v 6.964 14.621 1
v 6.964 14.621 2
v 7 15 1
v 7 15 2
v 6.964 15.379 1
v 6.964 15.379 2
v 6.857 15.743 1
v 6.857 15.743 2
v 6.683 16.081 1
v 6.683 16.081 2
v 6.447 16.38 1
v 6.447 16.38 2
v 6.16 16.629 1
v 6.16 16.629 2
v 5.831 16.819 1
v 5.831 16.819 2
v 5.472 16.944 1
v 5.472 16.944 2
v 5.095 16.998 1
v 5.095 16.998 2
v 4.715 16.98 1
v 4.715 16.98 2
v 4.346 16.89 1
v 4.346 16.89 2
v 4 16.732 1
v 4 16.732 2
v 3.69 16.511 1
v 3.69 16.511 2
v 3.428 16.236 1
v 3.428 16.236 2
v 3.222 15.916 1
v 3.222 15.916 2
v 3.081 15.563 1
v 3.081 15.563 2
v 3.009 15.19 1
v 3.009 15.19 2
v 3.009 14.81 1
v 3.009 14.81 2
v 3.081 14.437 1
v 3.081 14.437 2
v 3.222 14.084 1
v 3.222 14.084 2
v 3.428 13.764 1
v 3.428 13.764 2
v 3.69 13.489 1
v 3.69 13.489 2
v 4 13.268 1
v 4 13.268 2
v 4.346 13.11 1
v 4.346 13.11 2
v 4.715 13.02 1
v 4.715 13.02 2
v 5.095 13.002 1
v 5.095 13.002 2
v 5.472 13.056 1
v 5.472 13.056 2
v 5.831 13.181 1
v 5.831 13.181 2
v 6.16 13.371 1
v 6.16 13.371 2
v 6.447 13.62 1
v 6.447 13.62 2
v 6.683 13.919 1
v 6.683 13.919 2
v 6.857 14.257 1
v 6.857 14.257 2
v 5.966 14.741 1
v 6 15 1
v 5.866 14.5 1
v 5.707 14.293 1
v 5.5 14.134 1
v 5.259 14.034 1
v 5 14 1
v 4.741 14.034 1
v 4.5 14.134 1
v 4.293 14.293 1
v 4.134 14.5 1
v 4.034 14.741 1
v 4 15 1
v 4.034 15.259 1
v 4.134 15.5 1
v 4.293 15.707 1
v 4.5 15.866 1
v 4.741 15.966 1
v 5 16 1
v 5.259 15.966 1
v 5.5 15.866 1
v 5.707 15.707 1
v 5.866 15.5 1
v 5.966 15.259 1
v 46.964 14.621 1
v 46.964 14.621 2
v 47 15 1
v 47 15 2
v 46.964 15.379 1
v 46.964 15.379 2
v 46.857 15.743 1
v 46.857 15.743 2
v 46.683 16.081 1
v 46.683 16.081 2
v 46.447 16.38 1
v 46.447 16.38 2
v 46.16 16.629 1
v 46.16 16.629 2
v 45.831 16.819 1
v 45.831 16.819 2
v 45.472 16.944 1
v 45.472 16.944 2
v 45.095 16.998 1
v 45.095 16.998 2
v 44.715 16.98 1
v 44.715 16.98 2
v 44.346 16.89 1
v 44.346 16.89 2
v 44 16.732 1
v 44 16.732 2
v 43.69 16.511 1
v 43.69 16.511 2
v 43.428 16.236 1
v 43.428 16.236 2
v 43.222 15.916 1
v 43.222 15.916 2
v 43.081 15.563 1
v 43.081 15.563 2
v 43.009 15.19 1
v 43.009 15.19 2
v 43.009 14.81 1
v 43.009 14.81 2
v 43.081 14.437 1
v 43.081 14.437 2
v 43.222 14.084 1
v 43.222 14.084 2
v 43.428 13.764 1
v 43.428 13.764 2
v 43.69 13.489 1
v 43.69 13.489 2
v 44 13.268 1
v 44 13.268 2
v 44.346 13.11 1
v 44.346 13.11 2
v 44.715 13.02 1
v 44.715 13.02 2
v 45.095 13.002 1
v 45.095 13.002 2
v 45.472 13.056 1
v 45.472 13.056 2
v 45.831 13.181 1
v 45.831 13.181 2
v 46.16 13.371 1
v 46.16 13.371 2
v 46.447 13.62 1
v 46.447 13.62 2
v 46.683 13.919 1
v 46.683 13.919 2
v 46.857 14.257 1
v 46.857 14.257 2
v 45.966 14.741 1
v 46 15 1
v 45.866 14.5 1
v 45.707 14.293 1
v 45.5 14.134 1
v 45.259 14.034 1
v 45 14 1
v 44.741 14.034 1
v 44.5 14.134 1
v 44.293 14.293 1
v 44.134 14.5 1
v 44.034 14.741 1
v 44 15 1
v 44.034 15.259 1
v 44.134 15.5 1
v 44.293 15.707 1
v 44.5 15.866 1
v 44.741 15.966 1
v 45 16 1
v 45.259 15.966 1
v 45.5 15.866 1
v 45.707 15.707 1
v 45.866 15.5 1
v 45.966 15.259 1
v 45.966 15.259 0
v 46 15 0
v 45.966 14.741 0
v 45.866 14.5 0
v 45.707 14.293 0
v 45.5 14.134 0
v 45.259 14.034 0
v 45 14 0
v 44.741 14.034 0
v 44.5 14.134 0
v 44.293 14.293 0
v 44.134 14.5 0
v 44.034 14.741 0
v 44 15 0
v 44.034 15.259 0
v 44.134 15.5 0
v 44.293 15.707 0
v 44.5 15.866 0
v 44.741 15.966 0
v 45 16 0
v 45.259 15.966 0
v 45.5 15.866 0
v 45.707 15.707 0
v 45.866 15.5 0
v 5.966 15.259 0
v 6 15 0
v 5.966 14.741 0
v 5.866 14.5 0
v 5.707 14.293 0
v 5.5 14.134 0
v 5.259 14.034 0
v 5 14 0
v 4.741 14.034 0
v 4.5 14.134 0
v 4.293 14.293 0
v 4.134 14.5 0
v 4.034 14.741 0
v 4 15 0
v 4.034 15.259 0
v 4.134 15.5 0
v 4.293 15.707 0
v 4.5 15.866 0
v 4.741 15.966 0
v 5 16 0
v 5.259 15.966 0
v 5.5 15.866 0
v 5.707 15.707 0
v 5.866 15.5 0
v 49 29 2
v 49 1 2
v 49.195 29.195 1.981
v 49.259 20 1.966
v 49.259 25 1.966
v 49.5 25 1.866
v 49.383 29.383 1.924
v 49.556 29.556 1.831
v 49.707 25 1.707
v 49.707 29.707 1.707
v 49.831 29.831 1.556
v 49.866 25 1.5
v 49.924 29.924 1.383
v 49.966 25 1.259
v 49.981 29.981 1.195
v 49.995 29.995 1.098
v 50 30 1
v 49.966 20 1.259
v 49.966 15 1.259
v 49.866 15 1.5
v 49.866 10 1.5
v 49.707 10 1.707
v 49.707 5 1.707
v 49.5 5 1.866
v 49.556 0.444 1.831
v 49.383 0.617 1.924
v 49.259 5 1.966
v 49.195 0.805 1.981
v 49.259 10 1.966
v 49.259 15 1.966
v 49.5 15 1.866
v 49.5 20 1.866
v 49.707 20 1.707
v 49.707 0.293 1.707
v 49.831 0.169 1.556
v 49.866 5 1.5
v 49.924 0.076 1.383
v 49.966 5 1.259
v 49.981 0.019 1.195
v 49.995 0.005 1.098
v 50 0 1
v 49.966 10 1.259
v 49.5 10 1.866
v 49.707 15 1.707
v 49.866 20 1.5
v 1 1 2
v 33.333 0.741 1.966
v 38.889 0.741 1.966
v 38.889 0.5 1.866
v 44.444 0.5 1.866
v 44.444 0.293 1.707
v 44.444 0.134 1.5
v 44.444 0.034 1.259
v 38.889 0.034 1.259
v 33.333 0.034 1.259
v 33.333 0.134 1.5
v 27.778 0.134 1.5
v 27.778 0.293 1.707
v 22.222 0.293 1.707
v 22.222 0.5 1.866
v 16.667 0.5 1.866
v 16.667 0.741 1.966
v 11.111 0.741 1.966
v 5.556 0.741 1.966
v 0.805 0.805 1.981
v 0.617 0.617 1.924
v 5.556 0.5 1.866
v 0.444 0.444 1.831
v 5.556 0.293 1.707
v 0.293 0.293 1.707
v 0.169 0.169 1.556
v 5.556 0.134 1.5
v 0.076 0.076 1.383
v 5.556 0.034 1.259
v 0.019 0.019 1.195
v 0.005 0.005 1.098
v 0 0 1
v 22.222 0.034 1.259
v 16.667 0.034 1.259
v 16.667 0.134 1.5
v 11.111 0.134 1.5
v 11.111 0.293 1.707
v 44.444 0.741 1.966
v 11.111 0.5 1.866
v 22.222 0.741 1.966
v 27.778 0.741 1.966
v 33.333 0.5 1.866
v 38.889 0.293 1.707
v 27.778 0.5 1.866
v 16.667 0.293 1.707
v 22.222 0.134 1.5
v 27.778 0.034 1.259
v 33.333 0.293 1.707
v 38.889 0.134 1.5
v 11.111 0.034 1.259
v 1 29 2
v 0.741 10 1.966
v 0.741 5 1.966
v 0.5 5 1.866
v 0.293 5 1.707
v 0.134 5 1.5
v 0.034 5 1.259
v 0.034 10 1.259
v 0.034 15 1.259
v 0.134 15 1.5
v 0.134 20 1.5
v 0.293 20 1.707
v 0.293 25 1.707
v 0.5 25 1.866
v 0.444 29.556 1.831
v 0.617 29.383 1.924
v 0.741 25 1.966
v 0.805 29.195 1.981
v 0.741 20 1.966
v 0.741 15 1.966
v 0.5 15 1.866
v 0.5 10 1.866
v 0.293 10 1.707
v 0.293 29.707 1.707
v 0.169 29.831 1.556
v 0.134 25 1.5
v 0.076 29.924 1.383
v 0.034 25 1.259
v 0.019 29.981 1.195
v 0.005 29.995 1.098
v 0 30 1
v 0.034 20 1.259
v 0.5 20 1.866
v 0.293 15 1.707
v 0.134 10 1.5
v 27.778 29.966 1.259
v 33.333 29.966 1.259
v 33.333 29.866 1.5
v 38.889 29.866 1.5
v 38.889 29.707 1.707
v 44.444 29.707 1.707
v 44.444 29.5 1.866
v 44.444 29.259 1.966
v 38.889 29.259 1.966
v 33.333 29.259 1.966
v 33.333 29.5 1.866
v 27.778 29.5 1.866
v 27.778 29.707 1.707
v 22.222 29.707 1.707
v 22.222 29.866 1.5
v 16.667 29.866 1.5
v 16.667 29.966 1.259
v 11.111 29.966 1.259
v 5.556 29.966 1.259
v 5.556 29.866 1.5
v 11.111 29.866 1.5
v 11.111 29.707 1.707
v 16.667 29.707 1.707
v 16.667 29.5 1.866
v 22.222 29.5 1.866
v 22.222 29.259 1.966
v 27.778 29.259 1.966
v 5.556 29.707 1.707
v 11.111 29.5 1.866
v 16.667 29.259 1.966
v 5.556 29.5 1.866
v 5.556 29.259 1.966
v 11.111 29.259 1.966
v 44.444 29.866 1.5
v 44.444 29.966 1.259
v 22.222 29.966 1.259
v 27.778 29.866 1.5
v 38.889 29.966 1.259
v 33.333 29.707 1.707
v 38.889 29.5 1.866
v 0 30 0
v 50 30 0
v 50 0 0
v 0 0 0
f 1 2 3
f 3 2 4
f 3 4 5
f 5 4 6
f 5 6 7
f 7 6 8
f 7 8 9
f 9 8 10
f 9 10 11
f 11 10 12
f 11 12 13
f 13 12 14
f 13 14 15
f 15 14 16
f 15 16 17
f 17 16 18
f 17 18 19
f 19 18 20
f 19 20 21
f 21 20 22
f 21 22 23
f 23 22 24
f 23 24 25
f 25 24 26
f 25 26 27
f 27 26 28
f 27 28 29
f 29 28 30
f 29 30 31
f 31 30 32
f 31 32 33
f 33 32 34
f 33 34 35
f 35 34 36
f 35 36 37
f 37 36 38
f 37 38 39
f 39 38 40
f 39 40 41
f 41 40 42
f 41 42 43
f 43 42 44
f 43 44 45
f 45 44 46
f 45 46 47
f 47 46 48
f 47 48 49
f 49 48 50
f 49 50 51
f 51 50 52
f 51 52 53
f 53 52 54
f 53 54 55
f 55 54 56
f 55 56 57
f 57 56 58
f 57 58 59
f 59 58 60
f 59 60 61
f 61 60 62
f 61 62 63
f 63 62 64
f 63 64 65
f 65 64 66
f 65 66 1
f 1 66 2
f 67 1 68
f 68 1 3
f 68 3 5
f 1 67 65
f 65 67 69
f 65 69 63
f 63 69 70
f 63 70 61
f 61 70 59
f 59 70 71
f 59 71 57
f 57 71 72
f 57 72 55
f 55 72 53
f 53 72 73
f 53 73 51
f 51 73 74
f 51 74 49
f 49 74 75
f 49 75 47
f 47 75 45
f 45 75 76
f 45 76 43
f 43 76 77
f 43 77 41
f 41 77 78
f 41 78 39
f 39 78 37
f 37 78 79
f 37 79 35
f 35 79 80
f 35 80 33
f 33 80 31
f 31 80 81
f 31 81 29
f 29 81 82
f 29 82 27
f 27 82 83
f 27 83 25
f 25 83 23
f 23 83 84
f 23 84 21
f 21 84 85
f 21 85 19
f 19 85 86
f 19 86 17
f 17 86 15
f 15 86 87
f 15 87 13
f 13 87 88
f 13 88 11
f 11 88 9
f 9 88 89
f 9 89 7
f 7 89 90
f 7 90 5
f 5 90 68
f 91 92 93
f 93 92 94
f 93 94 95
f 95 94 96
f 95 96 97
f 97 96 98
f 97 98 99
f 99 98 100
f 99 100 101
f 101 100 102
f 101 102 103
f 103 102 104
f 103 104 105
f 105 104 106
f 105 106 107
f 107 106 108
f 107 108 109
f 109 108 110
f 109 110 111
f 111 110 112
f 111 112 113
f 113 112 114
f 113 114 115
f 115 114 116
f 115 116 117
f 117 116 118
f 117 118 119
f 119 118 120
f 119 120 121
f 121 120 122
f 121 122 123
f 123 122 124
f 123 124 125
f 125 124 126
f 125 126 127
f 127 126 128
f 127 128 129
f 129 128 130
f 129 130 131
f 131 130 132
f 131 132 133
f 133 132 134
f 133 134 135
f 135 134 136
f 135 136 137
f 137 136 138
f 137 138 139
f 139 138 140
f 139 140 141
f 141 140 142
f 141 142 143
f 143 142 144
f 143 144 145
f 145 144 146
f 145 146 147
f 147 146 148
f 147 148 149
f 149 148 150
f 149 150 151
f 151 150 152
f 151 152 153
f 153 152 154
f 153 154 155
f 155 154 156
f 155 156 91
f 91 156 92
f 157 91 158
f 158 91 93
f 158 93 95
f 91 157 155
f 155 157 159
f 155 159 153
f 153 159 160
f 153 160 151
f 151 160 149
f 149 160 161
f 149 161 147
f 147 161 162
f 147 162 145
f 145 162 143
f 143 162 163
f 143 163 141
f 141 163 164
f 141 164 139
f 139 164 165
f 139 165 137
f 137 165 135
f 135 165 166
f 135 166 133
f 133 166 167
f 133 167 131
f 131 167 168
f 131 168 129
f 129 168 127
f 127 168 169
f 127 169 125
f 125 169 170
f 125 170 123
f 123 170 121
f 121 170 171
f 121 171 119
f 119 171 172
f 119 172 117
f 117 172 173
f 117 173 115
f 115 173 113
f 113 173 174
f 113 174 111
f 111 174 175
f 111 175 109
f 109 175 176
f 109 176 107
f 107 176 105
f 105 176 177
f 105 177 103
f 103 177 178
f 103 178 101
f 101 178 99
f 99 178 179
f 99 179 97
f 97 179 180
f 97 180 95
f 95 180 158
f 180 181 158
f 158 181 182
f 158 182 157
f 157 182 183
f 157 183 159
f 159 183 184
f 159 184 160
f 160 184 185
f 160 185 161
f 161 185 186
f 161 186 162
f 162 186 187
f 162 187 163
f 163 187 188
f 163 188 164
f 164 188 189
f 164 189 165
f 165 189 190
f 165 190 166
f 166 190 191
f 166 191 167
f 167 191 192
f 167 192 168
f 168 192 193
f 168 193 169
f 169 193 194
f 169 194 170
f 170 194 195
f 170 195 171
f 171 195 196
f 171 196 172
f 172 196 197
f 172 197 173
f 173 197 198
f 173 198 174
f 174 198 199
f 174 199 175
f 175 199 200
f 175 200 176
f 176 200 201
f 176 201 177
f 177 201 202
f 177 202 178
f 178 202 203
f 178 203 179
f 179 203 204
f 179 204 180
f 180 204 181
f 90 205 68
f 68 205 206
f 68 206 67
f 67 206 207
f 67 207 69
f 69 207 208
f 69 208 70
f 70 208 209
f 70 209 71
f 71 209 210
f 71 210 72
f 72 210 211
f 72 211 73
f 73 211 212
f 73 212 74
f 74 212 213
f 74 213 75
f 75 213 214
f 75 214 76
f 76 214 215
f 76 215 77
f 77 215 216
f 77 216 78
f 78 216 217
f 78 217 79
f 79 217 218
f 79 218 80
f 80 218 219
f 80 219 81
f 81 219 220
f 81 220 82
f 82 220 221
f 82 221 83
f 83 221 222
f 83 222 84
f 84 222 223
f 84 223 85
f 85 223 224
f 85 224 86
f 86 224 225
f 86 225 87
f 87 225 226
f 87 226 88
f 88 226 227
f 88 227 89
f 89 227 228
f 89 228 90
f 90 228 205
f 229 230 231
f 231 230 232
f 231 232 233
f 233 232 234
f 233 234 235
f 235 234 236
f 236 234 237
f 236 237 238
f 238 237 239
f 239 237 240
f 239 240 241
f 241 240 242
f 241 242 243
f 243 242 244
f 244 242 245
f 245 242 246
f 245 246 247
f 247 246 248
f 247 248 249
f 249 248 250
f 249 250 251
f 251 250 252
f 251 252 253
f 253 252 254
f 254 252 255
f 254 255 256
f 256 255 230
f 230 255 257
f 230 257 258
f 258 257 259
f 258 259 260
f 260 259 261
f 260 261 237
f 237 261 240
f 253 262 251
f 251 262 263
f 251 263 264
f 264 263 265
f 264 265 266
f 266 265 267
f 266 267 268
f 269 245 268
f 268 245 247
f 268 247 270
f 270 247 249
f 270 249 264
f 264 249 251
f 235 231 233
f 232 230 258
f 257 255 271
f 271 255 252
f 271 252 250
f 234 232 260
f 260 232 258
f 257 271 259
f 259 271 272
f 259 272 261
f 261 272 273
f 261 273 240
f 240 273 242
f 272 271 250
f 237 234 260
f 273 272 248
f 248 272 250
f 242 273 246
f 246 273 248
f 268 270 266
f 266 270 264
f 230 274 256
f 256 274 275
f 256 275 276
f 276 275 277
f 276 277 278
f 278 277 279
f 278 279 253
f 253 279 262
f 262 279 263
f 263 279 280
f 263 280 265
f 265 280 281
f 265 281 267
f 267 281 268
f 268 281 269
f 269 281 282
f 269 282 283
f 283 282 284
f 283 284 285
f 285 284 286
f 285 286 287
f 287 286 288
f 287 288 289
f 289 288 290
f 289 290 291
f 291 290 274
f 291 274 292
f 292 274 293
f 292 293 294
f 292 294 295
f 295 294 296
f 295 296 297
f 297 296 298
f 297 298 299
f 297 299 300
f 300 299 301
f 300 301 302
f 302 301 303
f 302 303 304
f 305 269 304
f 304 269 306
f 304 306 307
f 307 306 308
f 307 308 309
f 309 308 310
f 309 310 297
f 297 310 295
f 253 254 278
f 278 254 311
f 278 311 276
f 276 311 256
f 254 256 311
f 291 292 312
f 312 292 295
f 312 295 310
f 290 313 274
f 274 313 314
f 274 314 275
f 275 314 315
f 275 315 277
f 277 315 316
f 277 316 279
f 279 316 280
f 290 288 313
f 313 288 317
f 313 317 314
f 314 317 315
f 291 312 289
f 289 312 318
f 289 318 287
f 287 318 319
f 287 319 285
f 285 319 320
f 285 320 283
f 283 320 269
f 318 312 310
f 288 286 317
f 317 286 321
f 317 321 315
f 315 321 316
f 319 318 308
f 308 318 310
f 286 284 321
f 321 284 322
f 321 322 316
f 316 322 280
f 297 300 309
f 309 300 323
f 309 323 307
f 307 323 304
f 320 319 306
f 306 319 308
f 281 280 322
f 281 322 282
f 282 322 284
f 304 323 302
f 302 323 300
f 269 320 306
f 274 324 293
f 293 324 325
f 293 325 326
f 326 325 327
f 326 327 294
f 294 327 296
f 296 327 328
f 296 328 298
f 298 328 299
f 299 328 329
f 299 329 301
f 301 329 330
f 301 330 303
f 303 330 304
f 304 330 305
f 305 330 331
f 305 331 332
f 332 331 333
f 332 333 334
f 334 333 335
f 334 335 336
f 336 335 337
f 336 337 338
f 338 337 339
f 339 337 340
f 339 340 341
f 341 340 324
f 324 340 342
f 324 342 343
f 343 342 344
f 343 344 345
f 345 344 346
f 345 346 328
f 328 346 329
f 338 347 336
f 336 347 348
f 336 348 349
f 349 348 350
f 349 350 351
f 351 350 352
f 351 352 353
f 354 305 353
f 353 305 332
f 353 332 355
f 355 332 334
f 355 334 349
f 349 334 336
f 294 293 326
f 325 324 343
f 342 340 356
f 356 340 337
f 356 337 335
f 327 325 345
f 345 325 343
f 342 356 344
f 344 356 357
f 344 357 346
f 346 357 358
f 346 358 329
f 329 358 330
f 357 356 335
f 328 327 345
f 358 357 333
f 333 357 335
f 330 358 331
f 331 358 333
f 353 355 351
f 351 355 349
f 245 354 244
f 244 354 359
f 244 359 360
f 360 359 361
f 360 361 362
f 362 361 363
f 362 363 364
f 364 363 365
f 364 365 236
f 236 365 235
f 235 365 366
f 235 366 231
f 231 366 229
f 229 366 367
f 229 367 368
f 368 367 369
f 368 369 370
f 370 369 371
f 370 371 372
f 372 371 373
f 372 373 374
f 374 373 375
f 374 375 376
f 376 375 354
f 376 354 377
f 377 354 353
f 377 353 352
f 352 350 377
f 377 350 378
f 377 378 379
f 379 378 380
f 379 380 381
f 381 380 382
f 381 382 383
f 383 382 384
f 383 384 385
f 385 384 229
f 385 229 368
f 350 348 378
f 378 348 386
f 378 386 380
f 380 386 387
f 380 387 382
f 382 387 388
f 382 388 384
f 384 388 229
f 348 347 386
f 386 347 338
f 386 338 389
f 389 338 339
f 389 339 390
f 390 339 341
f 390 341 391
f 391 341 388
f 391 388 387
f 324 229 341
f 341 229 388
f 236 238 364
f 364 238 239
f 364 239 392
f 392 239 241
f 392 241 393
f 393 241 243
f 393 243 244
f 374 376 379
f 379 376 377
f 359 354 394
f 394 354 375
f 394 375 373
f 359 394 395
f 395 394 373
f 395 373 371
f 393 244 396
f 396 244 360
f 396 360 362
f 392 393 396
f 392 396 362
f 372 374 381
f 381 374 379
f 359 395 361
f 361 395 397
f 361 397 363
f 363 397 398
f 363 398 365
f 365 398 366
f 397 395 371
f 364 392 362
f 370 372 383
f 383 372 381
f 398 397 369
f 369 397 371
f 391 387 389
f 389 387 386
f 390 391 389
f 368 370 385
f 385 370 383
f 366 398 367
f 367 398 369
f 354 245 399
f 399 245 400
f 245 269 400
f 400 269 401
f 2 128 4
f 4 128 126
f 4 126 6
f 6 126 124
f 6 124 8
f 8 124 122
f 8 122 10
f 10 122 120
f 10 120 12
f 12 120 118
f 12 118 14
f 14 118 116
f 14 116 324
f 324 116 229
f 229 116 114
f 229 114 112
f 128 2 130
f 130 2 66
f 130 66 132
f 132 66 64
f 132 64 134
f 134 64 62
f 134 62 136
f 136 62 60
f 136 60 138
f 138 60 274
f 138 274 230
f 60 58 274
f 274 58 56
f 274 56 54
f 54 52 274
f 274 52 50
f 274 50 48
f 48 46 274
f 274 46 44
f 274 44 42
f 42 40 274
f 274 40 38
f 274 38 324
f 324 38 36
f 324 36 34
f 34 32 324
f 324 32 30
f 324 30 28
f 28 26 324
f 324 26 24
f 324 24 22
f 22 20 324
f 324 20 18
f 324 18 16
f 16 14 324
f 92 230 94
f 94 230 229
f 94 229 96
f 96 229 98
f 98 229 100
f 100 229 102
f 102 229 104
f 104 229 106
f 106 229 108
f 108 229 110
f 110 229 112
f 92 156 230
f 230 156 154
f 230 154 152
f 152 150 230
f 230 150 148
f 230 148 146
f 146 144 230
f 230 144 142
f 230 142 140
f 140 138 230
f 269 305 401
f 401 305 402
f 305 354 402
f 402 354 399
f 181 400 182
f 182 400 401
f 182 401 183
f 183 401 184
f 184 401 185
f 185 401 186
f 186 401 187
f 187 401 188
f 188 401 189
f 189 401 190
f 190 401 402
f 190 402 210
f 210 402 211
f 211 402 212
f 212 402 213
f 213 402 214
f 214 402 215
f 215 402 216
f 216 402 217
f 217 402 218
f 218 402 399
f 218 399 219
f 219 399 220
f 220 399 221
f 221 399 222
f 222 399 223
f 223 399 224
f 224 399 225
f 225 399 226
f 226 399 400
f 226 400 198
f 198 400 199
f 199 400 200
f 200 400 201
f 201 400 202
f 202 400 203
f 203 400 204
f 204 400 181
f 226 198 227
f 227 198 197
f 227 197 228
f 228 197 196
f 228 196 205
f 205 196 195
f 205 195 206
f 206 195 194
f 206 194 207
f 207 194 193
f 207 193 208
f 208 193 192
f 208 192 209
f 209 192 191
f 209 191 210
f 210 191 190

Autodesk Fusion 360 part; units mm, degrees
sketch "Sketch1" plane through (0, 0, 0) normal (0, 0, 1) x (1, 0, 0)
  line L0 (0, 0) -> (50, 0)
  line L1 (50, 0) -> (50, 30)
  line L2 (50, 30) -> (0, 30)
  line L3 (0, 30) -> (0, 0)
  dimension "d1" = 50
  dimension "d2" = 30
extrude "Extrude1" add sketch "Sketch1" along normal blind 2
fillet "Fillet1" radius 1 1 faces at (16.6667, 20, 2)
sketch "Sketch2" plane through (0, 0, 2) normal (0, 0, 1) x (-1, 0, 0)
  line L0 (-49, -1) -> (-49, -29)
  line L1 (-49, -29) -> (-1, -29)
  line L2 (-1, -29) -> (-1, -1)
  line L3 (-1, -1) -> (-49, -1)
  circle A0 centre (-5, -15) radius 1
  circle A1 centre (-45, -15) radius 1
  line L4 (0, -30) -> (0, 0)
  line L5 (-50, -30) -> (0, -30)
  dimension "d7" = 2
  dimension "d8" = 2
  dimension "d9" = 40
  dimension "d10" = 5
  dimension "d11" = 15
extrude "Extrude2" cut sketch "Sketch2" against normal blind 1 contours A0 | A1
sketch "Sketch3" plane through (0, 0, 2) normal (0, 0, 1) x (-1, 0, 0)
  circle A0 centre (-45, -15) radius 1
  circle A1 centre (-5, -15) radius 1
  line L0 (-49, -1) -> (-49, -29)
  line L1 (-49, -29) -> (-1, -29)
  line L2 (-1, -29) -> (-1, -1)
  line L3 (-1, -1) -> (-49, -1)
  circle A2 centre (-5, -15) radius 2
  circle A3 centre (-45, -15) radius 2
  dimension "d14" = 4
  dimension "d15" = 4
extrude "Extrude4" cut sketch "Sketch3" against normal blind 11 contours A0 | A1
extrude "Extrude5" cut sketch "Sketch3" against normal blind 1 contours A2 | A3
extrude "Extrude3" [suppressed]
